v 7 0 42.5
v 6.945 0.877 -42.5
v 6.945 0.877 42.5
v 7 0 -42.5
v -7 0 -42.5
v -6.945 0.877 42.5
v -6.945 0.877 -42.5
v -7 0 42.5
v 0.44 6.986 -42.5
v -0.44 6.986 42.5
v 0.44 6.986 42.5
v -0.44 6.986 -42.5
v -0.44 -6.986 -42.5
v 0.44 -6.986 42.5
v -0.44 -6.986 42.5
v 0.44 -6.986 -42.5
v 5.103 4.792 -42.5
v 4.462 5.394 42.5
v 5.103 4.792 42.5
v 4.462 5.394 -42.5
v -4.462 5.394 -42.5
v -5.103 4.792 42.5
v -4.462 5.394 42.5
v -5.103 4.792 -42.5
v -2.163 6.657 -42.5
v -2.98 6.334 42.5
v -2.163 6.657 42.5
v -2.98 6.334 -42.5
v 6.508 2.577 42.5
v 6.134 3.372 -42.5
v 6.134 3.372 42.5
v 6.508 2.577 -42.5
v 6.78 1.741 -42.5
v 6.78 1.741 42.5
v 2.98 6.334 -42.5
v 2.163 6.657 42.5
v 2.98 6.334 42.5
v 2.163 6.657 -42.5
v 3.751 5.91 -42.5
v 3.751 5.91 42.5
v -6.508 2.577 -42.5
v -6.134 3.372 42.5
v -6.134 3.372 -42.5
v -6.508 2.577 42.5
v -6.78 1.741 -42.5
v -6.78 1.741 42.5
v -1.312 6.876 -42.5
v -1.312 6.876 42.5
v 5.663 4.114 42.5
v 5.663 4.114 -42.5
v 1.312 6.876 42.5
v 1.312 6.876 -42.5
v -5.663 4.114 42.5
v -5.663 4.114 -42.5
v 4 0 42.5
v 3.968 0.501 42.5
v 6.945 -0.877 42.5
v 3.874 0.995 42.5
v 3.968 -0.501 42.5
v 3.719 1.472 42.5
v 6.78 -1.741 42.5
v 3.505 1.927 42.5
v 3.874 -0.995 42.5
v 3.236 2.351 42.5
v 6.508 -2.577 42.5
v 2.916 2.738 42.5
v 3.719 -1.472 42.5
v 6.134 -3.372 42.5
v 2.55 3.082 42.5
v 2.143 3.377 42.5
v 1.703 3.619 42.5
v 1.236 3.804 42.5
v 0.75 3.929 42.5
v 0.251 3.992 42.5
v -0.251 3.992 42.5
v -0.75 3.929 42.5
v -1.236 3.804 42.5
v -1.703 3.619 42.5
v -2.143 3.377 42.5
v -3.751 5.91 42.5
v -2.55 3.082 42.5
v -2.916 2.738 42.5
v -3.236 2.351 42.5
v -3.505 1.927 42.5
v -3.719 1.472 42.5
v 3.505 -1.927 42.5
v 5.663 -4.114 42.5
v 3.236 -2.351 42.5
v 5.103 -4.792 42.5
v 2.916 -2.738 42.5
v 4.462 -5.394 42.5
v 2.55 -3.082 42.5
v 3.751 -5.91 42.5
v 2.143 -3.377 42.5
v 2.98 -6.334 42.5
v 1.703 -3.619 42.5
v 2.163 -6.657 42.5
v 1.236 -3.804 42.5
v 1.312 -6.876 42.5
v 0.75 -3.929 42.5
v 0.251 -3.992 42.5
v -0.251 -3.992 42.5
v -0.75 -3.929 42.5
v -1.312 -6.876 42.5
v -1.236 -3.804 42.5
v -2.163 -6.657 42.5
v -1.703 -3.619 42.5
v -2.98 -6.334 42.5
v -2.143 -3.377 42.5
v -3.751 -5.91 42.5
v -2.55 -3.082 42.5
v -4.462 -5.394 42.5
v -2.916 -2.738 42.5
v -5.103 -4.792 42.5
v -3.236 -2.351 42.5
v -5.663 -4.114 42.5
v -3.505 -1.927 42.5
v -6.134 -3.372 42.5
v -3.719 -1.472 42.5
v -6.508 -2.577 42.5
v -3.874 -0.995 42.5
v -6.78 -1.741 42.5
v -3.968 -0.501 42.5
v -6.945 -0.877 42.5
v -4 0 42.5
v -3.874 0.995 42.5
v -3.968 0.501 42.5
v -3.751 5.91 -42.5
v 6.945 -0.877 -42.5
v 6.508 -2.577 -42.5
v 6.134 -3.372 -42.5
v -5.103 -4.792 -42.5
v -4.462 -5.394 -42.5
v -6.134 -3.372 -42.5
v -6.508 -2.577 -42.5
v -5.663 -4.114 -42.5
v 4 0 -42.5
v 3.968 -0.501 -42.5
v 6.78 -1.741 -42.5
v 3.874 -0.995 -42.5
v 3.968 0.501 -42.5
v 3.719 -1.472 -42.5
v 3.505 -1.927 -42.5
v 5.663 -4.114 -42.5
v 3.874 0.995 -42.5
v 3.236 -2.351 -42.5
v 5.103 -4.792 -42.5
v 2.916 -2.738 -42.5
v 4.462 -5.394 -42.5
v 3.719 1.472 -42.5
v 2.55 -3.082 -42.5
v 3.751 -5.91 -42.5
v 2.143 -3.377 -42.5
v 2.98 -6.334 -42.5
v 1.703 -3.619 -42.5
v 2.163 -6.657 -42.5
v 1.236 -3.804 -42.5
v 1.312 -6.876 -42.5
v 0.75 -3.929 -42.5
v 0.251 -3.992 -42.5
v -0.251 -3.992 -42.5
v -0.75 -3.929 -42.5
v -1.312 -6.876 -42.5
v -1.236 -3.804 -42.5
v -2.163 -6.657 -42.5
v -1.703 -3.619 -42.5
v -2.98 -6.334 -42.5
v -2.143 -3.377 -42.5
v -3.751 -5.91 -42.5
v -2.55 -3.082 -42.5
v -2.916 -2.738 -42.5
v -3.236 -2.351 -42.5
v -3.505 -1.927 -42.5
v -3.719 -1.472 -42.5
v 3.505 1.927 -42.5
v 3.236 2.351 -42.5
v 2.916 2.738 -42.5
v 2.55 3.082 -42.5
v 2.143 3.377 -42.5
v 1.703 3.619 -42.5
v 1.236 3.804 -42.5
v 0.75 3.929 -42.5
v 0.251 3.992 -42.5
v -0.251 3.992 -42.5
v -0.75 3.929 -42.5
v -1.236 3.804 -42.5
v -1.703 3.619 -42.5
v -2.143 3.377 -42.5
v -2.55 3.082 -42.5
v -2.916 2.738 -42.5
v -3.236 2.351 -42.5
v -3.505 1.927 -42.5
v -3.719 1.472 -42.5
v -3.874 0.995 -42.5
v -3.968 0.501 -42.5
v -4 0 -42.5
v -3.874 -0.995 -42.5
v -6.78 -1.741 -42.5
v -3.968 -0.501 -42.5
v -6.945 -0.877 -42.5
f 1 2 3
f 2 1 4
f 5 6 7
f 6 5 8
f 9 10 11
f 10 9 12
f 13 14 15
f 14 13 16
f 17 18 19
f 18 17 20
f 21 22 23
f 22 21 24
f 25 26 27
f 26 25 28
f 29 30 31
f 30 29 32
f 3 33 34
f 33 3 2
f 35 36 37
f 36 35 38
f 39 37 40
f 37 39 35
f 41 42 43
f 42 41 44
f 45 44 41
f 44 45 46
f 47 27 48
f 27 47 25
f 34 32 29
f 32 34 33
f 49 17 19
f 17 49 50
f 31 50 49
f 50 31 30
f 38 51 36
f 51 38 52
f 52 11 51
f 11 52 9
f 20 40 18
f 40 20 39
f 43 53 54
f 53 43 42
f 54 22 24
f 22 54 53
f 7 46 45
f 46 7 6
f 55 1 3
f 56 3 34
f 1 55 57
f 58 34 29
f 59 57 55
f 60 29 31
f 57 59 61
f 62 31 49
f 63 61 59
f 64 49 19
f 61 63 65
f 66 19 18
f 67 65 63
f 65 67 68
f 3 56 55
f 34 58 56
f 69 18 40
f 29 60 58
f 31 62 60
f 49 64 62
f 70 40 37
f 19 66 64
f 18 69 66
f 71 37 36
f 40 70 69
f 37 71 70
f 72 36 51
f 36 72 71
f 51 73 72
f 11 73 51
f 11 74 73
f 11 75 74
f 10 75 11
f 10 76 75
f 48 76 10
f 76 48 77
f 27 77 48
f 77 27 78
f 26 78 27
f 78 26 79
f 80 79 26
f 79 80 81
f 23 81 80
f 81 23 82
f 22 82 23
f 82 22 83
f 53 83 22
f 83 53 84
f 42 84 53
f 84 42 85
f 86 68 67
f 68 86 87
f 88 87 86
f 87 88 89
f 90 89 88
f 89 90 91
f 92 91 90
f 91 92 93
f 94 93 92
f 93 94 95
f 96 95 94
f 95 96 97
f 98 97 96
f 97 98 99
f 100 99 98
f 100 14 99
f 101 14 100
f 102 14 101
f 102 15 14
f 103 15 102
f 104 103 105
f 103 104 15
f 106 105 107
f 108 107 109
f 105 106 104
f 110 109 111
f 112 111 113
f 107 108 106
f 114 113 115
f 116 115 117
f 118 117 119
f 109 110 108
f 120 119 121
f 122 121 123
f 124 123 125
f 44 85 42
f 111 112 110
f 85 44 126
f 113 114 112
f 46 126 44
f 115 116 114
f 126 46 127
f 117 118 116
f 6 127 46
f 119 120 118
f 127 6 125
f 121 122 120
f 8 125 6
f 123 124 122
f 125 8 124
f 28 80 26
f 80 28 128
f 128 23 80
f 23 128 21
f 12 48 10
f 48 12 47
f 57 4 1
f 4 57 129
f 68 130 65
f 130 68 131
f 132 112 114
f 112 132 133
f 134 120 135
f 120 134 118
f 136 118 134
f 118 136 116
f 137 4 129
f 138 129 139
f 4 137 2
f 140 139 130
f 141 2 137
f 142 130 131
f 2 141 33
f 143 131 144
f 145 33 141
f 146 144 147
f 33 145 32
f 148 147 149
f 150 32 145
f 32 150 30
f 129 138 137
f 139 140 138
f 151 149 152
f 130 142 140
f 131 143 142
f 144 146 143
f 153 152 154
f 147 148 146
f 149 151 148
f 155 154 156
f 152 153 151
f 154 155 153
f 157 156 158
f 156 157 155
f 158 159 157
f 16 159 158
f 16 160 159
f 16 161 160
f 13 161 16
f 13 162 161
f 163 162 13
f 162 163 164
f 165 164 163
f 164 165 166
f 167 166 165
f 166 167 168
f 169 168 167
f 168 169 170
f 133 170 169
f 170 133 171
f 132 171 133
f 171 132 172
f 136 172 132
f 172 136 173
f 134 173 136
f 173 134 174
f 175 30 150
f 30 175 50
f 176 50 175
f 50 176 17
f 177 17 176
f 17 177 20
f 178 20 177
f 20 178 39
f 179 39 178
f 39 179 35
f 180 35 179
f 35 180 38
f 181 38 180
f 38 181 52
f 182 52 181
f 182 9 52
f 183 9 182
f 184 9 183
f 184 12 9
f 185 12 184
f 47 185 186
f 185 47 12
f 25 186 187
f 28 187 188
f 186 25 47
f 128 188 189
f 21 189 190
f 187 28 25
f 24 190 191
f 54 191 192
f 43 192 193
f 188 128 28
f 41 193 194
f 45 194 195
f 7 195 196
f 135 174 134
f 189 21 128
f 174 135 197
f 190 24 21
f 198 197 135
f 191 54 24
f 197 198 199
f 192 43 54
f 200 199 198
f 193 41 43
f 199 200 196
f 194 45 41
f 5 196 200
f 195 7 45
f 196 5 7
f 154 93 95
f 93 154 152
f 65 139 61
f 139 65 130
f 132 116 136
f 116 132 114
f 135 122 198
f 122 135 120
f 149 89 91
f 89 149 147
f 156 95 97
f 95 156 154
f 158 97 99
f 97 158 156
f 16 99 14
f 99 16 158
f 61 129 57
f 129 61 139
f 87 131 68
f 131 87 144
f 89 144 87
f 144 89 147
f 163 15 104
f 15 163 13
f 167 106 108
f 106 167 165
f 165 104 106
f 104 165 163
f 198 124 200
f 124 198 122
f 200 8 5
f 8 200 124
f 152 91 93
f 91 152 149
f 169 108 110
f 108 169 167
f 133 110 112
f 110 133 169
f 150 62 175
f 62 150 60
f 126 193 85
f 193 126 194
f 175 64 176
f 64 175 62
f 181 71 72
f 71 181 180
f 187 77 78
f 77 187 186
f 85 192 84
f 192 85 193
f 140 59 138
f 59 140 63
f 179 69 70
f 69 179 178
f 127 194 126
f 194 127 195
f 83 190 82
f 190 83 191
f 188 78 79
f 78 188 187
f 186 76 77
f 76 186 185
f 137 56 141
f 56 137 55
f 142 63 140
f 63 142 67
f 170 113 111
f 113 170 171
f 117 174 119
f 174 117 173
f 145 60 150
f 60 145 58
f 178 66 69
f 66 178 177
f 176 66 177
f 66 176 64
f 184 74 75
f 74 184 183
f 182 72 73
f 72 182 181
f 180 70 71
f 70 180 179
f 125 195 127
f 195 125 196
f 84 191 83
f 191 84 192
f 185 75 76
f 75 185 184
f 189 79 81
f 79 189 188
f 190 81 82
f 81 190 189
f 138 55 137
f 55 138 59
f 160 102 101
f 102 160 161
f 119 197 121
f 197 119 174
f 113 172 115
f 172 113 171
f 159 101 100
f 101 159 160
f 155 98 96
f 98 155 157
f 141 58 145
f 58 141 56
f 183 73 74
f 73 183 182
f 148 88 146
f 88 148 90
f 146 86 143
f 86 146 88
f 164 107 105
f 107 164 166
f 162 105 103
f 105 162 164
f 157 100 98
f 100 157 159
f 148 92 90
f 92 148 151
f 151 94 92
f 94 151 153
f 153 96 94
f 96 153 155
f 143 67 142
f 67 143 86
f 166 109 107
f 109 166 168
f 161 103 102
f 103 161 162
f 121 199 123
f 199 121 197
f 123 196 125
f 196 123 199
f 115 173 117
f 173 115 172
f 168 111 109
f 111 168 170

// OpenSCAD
$fn = 50;


difference() {
	union() {
		translate(v = [0, 0, -42.5000000000]) {
			cylinder(h = 85, r = 7.0000000000);
		}
	}
	union() {
		translate(v = [0, 0, -100.0000000000]) {
			cylinder(h = 200, r = 4);
		}
	}
}
